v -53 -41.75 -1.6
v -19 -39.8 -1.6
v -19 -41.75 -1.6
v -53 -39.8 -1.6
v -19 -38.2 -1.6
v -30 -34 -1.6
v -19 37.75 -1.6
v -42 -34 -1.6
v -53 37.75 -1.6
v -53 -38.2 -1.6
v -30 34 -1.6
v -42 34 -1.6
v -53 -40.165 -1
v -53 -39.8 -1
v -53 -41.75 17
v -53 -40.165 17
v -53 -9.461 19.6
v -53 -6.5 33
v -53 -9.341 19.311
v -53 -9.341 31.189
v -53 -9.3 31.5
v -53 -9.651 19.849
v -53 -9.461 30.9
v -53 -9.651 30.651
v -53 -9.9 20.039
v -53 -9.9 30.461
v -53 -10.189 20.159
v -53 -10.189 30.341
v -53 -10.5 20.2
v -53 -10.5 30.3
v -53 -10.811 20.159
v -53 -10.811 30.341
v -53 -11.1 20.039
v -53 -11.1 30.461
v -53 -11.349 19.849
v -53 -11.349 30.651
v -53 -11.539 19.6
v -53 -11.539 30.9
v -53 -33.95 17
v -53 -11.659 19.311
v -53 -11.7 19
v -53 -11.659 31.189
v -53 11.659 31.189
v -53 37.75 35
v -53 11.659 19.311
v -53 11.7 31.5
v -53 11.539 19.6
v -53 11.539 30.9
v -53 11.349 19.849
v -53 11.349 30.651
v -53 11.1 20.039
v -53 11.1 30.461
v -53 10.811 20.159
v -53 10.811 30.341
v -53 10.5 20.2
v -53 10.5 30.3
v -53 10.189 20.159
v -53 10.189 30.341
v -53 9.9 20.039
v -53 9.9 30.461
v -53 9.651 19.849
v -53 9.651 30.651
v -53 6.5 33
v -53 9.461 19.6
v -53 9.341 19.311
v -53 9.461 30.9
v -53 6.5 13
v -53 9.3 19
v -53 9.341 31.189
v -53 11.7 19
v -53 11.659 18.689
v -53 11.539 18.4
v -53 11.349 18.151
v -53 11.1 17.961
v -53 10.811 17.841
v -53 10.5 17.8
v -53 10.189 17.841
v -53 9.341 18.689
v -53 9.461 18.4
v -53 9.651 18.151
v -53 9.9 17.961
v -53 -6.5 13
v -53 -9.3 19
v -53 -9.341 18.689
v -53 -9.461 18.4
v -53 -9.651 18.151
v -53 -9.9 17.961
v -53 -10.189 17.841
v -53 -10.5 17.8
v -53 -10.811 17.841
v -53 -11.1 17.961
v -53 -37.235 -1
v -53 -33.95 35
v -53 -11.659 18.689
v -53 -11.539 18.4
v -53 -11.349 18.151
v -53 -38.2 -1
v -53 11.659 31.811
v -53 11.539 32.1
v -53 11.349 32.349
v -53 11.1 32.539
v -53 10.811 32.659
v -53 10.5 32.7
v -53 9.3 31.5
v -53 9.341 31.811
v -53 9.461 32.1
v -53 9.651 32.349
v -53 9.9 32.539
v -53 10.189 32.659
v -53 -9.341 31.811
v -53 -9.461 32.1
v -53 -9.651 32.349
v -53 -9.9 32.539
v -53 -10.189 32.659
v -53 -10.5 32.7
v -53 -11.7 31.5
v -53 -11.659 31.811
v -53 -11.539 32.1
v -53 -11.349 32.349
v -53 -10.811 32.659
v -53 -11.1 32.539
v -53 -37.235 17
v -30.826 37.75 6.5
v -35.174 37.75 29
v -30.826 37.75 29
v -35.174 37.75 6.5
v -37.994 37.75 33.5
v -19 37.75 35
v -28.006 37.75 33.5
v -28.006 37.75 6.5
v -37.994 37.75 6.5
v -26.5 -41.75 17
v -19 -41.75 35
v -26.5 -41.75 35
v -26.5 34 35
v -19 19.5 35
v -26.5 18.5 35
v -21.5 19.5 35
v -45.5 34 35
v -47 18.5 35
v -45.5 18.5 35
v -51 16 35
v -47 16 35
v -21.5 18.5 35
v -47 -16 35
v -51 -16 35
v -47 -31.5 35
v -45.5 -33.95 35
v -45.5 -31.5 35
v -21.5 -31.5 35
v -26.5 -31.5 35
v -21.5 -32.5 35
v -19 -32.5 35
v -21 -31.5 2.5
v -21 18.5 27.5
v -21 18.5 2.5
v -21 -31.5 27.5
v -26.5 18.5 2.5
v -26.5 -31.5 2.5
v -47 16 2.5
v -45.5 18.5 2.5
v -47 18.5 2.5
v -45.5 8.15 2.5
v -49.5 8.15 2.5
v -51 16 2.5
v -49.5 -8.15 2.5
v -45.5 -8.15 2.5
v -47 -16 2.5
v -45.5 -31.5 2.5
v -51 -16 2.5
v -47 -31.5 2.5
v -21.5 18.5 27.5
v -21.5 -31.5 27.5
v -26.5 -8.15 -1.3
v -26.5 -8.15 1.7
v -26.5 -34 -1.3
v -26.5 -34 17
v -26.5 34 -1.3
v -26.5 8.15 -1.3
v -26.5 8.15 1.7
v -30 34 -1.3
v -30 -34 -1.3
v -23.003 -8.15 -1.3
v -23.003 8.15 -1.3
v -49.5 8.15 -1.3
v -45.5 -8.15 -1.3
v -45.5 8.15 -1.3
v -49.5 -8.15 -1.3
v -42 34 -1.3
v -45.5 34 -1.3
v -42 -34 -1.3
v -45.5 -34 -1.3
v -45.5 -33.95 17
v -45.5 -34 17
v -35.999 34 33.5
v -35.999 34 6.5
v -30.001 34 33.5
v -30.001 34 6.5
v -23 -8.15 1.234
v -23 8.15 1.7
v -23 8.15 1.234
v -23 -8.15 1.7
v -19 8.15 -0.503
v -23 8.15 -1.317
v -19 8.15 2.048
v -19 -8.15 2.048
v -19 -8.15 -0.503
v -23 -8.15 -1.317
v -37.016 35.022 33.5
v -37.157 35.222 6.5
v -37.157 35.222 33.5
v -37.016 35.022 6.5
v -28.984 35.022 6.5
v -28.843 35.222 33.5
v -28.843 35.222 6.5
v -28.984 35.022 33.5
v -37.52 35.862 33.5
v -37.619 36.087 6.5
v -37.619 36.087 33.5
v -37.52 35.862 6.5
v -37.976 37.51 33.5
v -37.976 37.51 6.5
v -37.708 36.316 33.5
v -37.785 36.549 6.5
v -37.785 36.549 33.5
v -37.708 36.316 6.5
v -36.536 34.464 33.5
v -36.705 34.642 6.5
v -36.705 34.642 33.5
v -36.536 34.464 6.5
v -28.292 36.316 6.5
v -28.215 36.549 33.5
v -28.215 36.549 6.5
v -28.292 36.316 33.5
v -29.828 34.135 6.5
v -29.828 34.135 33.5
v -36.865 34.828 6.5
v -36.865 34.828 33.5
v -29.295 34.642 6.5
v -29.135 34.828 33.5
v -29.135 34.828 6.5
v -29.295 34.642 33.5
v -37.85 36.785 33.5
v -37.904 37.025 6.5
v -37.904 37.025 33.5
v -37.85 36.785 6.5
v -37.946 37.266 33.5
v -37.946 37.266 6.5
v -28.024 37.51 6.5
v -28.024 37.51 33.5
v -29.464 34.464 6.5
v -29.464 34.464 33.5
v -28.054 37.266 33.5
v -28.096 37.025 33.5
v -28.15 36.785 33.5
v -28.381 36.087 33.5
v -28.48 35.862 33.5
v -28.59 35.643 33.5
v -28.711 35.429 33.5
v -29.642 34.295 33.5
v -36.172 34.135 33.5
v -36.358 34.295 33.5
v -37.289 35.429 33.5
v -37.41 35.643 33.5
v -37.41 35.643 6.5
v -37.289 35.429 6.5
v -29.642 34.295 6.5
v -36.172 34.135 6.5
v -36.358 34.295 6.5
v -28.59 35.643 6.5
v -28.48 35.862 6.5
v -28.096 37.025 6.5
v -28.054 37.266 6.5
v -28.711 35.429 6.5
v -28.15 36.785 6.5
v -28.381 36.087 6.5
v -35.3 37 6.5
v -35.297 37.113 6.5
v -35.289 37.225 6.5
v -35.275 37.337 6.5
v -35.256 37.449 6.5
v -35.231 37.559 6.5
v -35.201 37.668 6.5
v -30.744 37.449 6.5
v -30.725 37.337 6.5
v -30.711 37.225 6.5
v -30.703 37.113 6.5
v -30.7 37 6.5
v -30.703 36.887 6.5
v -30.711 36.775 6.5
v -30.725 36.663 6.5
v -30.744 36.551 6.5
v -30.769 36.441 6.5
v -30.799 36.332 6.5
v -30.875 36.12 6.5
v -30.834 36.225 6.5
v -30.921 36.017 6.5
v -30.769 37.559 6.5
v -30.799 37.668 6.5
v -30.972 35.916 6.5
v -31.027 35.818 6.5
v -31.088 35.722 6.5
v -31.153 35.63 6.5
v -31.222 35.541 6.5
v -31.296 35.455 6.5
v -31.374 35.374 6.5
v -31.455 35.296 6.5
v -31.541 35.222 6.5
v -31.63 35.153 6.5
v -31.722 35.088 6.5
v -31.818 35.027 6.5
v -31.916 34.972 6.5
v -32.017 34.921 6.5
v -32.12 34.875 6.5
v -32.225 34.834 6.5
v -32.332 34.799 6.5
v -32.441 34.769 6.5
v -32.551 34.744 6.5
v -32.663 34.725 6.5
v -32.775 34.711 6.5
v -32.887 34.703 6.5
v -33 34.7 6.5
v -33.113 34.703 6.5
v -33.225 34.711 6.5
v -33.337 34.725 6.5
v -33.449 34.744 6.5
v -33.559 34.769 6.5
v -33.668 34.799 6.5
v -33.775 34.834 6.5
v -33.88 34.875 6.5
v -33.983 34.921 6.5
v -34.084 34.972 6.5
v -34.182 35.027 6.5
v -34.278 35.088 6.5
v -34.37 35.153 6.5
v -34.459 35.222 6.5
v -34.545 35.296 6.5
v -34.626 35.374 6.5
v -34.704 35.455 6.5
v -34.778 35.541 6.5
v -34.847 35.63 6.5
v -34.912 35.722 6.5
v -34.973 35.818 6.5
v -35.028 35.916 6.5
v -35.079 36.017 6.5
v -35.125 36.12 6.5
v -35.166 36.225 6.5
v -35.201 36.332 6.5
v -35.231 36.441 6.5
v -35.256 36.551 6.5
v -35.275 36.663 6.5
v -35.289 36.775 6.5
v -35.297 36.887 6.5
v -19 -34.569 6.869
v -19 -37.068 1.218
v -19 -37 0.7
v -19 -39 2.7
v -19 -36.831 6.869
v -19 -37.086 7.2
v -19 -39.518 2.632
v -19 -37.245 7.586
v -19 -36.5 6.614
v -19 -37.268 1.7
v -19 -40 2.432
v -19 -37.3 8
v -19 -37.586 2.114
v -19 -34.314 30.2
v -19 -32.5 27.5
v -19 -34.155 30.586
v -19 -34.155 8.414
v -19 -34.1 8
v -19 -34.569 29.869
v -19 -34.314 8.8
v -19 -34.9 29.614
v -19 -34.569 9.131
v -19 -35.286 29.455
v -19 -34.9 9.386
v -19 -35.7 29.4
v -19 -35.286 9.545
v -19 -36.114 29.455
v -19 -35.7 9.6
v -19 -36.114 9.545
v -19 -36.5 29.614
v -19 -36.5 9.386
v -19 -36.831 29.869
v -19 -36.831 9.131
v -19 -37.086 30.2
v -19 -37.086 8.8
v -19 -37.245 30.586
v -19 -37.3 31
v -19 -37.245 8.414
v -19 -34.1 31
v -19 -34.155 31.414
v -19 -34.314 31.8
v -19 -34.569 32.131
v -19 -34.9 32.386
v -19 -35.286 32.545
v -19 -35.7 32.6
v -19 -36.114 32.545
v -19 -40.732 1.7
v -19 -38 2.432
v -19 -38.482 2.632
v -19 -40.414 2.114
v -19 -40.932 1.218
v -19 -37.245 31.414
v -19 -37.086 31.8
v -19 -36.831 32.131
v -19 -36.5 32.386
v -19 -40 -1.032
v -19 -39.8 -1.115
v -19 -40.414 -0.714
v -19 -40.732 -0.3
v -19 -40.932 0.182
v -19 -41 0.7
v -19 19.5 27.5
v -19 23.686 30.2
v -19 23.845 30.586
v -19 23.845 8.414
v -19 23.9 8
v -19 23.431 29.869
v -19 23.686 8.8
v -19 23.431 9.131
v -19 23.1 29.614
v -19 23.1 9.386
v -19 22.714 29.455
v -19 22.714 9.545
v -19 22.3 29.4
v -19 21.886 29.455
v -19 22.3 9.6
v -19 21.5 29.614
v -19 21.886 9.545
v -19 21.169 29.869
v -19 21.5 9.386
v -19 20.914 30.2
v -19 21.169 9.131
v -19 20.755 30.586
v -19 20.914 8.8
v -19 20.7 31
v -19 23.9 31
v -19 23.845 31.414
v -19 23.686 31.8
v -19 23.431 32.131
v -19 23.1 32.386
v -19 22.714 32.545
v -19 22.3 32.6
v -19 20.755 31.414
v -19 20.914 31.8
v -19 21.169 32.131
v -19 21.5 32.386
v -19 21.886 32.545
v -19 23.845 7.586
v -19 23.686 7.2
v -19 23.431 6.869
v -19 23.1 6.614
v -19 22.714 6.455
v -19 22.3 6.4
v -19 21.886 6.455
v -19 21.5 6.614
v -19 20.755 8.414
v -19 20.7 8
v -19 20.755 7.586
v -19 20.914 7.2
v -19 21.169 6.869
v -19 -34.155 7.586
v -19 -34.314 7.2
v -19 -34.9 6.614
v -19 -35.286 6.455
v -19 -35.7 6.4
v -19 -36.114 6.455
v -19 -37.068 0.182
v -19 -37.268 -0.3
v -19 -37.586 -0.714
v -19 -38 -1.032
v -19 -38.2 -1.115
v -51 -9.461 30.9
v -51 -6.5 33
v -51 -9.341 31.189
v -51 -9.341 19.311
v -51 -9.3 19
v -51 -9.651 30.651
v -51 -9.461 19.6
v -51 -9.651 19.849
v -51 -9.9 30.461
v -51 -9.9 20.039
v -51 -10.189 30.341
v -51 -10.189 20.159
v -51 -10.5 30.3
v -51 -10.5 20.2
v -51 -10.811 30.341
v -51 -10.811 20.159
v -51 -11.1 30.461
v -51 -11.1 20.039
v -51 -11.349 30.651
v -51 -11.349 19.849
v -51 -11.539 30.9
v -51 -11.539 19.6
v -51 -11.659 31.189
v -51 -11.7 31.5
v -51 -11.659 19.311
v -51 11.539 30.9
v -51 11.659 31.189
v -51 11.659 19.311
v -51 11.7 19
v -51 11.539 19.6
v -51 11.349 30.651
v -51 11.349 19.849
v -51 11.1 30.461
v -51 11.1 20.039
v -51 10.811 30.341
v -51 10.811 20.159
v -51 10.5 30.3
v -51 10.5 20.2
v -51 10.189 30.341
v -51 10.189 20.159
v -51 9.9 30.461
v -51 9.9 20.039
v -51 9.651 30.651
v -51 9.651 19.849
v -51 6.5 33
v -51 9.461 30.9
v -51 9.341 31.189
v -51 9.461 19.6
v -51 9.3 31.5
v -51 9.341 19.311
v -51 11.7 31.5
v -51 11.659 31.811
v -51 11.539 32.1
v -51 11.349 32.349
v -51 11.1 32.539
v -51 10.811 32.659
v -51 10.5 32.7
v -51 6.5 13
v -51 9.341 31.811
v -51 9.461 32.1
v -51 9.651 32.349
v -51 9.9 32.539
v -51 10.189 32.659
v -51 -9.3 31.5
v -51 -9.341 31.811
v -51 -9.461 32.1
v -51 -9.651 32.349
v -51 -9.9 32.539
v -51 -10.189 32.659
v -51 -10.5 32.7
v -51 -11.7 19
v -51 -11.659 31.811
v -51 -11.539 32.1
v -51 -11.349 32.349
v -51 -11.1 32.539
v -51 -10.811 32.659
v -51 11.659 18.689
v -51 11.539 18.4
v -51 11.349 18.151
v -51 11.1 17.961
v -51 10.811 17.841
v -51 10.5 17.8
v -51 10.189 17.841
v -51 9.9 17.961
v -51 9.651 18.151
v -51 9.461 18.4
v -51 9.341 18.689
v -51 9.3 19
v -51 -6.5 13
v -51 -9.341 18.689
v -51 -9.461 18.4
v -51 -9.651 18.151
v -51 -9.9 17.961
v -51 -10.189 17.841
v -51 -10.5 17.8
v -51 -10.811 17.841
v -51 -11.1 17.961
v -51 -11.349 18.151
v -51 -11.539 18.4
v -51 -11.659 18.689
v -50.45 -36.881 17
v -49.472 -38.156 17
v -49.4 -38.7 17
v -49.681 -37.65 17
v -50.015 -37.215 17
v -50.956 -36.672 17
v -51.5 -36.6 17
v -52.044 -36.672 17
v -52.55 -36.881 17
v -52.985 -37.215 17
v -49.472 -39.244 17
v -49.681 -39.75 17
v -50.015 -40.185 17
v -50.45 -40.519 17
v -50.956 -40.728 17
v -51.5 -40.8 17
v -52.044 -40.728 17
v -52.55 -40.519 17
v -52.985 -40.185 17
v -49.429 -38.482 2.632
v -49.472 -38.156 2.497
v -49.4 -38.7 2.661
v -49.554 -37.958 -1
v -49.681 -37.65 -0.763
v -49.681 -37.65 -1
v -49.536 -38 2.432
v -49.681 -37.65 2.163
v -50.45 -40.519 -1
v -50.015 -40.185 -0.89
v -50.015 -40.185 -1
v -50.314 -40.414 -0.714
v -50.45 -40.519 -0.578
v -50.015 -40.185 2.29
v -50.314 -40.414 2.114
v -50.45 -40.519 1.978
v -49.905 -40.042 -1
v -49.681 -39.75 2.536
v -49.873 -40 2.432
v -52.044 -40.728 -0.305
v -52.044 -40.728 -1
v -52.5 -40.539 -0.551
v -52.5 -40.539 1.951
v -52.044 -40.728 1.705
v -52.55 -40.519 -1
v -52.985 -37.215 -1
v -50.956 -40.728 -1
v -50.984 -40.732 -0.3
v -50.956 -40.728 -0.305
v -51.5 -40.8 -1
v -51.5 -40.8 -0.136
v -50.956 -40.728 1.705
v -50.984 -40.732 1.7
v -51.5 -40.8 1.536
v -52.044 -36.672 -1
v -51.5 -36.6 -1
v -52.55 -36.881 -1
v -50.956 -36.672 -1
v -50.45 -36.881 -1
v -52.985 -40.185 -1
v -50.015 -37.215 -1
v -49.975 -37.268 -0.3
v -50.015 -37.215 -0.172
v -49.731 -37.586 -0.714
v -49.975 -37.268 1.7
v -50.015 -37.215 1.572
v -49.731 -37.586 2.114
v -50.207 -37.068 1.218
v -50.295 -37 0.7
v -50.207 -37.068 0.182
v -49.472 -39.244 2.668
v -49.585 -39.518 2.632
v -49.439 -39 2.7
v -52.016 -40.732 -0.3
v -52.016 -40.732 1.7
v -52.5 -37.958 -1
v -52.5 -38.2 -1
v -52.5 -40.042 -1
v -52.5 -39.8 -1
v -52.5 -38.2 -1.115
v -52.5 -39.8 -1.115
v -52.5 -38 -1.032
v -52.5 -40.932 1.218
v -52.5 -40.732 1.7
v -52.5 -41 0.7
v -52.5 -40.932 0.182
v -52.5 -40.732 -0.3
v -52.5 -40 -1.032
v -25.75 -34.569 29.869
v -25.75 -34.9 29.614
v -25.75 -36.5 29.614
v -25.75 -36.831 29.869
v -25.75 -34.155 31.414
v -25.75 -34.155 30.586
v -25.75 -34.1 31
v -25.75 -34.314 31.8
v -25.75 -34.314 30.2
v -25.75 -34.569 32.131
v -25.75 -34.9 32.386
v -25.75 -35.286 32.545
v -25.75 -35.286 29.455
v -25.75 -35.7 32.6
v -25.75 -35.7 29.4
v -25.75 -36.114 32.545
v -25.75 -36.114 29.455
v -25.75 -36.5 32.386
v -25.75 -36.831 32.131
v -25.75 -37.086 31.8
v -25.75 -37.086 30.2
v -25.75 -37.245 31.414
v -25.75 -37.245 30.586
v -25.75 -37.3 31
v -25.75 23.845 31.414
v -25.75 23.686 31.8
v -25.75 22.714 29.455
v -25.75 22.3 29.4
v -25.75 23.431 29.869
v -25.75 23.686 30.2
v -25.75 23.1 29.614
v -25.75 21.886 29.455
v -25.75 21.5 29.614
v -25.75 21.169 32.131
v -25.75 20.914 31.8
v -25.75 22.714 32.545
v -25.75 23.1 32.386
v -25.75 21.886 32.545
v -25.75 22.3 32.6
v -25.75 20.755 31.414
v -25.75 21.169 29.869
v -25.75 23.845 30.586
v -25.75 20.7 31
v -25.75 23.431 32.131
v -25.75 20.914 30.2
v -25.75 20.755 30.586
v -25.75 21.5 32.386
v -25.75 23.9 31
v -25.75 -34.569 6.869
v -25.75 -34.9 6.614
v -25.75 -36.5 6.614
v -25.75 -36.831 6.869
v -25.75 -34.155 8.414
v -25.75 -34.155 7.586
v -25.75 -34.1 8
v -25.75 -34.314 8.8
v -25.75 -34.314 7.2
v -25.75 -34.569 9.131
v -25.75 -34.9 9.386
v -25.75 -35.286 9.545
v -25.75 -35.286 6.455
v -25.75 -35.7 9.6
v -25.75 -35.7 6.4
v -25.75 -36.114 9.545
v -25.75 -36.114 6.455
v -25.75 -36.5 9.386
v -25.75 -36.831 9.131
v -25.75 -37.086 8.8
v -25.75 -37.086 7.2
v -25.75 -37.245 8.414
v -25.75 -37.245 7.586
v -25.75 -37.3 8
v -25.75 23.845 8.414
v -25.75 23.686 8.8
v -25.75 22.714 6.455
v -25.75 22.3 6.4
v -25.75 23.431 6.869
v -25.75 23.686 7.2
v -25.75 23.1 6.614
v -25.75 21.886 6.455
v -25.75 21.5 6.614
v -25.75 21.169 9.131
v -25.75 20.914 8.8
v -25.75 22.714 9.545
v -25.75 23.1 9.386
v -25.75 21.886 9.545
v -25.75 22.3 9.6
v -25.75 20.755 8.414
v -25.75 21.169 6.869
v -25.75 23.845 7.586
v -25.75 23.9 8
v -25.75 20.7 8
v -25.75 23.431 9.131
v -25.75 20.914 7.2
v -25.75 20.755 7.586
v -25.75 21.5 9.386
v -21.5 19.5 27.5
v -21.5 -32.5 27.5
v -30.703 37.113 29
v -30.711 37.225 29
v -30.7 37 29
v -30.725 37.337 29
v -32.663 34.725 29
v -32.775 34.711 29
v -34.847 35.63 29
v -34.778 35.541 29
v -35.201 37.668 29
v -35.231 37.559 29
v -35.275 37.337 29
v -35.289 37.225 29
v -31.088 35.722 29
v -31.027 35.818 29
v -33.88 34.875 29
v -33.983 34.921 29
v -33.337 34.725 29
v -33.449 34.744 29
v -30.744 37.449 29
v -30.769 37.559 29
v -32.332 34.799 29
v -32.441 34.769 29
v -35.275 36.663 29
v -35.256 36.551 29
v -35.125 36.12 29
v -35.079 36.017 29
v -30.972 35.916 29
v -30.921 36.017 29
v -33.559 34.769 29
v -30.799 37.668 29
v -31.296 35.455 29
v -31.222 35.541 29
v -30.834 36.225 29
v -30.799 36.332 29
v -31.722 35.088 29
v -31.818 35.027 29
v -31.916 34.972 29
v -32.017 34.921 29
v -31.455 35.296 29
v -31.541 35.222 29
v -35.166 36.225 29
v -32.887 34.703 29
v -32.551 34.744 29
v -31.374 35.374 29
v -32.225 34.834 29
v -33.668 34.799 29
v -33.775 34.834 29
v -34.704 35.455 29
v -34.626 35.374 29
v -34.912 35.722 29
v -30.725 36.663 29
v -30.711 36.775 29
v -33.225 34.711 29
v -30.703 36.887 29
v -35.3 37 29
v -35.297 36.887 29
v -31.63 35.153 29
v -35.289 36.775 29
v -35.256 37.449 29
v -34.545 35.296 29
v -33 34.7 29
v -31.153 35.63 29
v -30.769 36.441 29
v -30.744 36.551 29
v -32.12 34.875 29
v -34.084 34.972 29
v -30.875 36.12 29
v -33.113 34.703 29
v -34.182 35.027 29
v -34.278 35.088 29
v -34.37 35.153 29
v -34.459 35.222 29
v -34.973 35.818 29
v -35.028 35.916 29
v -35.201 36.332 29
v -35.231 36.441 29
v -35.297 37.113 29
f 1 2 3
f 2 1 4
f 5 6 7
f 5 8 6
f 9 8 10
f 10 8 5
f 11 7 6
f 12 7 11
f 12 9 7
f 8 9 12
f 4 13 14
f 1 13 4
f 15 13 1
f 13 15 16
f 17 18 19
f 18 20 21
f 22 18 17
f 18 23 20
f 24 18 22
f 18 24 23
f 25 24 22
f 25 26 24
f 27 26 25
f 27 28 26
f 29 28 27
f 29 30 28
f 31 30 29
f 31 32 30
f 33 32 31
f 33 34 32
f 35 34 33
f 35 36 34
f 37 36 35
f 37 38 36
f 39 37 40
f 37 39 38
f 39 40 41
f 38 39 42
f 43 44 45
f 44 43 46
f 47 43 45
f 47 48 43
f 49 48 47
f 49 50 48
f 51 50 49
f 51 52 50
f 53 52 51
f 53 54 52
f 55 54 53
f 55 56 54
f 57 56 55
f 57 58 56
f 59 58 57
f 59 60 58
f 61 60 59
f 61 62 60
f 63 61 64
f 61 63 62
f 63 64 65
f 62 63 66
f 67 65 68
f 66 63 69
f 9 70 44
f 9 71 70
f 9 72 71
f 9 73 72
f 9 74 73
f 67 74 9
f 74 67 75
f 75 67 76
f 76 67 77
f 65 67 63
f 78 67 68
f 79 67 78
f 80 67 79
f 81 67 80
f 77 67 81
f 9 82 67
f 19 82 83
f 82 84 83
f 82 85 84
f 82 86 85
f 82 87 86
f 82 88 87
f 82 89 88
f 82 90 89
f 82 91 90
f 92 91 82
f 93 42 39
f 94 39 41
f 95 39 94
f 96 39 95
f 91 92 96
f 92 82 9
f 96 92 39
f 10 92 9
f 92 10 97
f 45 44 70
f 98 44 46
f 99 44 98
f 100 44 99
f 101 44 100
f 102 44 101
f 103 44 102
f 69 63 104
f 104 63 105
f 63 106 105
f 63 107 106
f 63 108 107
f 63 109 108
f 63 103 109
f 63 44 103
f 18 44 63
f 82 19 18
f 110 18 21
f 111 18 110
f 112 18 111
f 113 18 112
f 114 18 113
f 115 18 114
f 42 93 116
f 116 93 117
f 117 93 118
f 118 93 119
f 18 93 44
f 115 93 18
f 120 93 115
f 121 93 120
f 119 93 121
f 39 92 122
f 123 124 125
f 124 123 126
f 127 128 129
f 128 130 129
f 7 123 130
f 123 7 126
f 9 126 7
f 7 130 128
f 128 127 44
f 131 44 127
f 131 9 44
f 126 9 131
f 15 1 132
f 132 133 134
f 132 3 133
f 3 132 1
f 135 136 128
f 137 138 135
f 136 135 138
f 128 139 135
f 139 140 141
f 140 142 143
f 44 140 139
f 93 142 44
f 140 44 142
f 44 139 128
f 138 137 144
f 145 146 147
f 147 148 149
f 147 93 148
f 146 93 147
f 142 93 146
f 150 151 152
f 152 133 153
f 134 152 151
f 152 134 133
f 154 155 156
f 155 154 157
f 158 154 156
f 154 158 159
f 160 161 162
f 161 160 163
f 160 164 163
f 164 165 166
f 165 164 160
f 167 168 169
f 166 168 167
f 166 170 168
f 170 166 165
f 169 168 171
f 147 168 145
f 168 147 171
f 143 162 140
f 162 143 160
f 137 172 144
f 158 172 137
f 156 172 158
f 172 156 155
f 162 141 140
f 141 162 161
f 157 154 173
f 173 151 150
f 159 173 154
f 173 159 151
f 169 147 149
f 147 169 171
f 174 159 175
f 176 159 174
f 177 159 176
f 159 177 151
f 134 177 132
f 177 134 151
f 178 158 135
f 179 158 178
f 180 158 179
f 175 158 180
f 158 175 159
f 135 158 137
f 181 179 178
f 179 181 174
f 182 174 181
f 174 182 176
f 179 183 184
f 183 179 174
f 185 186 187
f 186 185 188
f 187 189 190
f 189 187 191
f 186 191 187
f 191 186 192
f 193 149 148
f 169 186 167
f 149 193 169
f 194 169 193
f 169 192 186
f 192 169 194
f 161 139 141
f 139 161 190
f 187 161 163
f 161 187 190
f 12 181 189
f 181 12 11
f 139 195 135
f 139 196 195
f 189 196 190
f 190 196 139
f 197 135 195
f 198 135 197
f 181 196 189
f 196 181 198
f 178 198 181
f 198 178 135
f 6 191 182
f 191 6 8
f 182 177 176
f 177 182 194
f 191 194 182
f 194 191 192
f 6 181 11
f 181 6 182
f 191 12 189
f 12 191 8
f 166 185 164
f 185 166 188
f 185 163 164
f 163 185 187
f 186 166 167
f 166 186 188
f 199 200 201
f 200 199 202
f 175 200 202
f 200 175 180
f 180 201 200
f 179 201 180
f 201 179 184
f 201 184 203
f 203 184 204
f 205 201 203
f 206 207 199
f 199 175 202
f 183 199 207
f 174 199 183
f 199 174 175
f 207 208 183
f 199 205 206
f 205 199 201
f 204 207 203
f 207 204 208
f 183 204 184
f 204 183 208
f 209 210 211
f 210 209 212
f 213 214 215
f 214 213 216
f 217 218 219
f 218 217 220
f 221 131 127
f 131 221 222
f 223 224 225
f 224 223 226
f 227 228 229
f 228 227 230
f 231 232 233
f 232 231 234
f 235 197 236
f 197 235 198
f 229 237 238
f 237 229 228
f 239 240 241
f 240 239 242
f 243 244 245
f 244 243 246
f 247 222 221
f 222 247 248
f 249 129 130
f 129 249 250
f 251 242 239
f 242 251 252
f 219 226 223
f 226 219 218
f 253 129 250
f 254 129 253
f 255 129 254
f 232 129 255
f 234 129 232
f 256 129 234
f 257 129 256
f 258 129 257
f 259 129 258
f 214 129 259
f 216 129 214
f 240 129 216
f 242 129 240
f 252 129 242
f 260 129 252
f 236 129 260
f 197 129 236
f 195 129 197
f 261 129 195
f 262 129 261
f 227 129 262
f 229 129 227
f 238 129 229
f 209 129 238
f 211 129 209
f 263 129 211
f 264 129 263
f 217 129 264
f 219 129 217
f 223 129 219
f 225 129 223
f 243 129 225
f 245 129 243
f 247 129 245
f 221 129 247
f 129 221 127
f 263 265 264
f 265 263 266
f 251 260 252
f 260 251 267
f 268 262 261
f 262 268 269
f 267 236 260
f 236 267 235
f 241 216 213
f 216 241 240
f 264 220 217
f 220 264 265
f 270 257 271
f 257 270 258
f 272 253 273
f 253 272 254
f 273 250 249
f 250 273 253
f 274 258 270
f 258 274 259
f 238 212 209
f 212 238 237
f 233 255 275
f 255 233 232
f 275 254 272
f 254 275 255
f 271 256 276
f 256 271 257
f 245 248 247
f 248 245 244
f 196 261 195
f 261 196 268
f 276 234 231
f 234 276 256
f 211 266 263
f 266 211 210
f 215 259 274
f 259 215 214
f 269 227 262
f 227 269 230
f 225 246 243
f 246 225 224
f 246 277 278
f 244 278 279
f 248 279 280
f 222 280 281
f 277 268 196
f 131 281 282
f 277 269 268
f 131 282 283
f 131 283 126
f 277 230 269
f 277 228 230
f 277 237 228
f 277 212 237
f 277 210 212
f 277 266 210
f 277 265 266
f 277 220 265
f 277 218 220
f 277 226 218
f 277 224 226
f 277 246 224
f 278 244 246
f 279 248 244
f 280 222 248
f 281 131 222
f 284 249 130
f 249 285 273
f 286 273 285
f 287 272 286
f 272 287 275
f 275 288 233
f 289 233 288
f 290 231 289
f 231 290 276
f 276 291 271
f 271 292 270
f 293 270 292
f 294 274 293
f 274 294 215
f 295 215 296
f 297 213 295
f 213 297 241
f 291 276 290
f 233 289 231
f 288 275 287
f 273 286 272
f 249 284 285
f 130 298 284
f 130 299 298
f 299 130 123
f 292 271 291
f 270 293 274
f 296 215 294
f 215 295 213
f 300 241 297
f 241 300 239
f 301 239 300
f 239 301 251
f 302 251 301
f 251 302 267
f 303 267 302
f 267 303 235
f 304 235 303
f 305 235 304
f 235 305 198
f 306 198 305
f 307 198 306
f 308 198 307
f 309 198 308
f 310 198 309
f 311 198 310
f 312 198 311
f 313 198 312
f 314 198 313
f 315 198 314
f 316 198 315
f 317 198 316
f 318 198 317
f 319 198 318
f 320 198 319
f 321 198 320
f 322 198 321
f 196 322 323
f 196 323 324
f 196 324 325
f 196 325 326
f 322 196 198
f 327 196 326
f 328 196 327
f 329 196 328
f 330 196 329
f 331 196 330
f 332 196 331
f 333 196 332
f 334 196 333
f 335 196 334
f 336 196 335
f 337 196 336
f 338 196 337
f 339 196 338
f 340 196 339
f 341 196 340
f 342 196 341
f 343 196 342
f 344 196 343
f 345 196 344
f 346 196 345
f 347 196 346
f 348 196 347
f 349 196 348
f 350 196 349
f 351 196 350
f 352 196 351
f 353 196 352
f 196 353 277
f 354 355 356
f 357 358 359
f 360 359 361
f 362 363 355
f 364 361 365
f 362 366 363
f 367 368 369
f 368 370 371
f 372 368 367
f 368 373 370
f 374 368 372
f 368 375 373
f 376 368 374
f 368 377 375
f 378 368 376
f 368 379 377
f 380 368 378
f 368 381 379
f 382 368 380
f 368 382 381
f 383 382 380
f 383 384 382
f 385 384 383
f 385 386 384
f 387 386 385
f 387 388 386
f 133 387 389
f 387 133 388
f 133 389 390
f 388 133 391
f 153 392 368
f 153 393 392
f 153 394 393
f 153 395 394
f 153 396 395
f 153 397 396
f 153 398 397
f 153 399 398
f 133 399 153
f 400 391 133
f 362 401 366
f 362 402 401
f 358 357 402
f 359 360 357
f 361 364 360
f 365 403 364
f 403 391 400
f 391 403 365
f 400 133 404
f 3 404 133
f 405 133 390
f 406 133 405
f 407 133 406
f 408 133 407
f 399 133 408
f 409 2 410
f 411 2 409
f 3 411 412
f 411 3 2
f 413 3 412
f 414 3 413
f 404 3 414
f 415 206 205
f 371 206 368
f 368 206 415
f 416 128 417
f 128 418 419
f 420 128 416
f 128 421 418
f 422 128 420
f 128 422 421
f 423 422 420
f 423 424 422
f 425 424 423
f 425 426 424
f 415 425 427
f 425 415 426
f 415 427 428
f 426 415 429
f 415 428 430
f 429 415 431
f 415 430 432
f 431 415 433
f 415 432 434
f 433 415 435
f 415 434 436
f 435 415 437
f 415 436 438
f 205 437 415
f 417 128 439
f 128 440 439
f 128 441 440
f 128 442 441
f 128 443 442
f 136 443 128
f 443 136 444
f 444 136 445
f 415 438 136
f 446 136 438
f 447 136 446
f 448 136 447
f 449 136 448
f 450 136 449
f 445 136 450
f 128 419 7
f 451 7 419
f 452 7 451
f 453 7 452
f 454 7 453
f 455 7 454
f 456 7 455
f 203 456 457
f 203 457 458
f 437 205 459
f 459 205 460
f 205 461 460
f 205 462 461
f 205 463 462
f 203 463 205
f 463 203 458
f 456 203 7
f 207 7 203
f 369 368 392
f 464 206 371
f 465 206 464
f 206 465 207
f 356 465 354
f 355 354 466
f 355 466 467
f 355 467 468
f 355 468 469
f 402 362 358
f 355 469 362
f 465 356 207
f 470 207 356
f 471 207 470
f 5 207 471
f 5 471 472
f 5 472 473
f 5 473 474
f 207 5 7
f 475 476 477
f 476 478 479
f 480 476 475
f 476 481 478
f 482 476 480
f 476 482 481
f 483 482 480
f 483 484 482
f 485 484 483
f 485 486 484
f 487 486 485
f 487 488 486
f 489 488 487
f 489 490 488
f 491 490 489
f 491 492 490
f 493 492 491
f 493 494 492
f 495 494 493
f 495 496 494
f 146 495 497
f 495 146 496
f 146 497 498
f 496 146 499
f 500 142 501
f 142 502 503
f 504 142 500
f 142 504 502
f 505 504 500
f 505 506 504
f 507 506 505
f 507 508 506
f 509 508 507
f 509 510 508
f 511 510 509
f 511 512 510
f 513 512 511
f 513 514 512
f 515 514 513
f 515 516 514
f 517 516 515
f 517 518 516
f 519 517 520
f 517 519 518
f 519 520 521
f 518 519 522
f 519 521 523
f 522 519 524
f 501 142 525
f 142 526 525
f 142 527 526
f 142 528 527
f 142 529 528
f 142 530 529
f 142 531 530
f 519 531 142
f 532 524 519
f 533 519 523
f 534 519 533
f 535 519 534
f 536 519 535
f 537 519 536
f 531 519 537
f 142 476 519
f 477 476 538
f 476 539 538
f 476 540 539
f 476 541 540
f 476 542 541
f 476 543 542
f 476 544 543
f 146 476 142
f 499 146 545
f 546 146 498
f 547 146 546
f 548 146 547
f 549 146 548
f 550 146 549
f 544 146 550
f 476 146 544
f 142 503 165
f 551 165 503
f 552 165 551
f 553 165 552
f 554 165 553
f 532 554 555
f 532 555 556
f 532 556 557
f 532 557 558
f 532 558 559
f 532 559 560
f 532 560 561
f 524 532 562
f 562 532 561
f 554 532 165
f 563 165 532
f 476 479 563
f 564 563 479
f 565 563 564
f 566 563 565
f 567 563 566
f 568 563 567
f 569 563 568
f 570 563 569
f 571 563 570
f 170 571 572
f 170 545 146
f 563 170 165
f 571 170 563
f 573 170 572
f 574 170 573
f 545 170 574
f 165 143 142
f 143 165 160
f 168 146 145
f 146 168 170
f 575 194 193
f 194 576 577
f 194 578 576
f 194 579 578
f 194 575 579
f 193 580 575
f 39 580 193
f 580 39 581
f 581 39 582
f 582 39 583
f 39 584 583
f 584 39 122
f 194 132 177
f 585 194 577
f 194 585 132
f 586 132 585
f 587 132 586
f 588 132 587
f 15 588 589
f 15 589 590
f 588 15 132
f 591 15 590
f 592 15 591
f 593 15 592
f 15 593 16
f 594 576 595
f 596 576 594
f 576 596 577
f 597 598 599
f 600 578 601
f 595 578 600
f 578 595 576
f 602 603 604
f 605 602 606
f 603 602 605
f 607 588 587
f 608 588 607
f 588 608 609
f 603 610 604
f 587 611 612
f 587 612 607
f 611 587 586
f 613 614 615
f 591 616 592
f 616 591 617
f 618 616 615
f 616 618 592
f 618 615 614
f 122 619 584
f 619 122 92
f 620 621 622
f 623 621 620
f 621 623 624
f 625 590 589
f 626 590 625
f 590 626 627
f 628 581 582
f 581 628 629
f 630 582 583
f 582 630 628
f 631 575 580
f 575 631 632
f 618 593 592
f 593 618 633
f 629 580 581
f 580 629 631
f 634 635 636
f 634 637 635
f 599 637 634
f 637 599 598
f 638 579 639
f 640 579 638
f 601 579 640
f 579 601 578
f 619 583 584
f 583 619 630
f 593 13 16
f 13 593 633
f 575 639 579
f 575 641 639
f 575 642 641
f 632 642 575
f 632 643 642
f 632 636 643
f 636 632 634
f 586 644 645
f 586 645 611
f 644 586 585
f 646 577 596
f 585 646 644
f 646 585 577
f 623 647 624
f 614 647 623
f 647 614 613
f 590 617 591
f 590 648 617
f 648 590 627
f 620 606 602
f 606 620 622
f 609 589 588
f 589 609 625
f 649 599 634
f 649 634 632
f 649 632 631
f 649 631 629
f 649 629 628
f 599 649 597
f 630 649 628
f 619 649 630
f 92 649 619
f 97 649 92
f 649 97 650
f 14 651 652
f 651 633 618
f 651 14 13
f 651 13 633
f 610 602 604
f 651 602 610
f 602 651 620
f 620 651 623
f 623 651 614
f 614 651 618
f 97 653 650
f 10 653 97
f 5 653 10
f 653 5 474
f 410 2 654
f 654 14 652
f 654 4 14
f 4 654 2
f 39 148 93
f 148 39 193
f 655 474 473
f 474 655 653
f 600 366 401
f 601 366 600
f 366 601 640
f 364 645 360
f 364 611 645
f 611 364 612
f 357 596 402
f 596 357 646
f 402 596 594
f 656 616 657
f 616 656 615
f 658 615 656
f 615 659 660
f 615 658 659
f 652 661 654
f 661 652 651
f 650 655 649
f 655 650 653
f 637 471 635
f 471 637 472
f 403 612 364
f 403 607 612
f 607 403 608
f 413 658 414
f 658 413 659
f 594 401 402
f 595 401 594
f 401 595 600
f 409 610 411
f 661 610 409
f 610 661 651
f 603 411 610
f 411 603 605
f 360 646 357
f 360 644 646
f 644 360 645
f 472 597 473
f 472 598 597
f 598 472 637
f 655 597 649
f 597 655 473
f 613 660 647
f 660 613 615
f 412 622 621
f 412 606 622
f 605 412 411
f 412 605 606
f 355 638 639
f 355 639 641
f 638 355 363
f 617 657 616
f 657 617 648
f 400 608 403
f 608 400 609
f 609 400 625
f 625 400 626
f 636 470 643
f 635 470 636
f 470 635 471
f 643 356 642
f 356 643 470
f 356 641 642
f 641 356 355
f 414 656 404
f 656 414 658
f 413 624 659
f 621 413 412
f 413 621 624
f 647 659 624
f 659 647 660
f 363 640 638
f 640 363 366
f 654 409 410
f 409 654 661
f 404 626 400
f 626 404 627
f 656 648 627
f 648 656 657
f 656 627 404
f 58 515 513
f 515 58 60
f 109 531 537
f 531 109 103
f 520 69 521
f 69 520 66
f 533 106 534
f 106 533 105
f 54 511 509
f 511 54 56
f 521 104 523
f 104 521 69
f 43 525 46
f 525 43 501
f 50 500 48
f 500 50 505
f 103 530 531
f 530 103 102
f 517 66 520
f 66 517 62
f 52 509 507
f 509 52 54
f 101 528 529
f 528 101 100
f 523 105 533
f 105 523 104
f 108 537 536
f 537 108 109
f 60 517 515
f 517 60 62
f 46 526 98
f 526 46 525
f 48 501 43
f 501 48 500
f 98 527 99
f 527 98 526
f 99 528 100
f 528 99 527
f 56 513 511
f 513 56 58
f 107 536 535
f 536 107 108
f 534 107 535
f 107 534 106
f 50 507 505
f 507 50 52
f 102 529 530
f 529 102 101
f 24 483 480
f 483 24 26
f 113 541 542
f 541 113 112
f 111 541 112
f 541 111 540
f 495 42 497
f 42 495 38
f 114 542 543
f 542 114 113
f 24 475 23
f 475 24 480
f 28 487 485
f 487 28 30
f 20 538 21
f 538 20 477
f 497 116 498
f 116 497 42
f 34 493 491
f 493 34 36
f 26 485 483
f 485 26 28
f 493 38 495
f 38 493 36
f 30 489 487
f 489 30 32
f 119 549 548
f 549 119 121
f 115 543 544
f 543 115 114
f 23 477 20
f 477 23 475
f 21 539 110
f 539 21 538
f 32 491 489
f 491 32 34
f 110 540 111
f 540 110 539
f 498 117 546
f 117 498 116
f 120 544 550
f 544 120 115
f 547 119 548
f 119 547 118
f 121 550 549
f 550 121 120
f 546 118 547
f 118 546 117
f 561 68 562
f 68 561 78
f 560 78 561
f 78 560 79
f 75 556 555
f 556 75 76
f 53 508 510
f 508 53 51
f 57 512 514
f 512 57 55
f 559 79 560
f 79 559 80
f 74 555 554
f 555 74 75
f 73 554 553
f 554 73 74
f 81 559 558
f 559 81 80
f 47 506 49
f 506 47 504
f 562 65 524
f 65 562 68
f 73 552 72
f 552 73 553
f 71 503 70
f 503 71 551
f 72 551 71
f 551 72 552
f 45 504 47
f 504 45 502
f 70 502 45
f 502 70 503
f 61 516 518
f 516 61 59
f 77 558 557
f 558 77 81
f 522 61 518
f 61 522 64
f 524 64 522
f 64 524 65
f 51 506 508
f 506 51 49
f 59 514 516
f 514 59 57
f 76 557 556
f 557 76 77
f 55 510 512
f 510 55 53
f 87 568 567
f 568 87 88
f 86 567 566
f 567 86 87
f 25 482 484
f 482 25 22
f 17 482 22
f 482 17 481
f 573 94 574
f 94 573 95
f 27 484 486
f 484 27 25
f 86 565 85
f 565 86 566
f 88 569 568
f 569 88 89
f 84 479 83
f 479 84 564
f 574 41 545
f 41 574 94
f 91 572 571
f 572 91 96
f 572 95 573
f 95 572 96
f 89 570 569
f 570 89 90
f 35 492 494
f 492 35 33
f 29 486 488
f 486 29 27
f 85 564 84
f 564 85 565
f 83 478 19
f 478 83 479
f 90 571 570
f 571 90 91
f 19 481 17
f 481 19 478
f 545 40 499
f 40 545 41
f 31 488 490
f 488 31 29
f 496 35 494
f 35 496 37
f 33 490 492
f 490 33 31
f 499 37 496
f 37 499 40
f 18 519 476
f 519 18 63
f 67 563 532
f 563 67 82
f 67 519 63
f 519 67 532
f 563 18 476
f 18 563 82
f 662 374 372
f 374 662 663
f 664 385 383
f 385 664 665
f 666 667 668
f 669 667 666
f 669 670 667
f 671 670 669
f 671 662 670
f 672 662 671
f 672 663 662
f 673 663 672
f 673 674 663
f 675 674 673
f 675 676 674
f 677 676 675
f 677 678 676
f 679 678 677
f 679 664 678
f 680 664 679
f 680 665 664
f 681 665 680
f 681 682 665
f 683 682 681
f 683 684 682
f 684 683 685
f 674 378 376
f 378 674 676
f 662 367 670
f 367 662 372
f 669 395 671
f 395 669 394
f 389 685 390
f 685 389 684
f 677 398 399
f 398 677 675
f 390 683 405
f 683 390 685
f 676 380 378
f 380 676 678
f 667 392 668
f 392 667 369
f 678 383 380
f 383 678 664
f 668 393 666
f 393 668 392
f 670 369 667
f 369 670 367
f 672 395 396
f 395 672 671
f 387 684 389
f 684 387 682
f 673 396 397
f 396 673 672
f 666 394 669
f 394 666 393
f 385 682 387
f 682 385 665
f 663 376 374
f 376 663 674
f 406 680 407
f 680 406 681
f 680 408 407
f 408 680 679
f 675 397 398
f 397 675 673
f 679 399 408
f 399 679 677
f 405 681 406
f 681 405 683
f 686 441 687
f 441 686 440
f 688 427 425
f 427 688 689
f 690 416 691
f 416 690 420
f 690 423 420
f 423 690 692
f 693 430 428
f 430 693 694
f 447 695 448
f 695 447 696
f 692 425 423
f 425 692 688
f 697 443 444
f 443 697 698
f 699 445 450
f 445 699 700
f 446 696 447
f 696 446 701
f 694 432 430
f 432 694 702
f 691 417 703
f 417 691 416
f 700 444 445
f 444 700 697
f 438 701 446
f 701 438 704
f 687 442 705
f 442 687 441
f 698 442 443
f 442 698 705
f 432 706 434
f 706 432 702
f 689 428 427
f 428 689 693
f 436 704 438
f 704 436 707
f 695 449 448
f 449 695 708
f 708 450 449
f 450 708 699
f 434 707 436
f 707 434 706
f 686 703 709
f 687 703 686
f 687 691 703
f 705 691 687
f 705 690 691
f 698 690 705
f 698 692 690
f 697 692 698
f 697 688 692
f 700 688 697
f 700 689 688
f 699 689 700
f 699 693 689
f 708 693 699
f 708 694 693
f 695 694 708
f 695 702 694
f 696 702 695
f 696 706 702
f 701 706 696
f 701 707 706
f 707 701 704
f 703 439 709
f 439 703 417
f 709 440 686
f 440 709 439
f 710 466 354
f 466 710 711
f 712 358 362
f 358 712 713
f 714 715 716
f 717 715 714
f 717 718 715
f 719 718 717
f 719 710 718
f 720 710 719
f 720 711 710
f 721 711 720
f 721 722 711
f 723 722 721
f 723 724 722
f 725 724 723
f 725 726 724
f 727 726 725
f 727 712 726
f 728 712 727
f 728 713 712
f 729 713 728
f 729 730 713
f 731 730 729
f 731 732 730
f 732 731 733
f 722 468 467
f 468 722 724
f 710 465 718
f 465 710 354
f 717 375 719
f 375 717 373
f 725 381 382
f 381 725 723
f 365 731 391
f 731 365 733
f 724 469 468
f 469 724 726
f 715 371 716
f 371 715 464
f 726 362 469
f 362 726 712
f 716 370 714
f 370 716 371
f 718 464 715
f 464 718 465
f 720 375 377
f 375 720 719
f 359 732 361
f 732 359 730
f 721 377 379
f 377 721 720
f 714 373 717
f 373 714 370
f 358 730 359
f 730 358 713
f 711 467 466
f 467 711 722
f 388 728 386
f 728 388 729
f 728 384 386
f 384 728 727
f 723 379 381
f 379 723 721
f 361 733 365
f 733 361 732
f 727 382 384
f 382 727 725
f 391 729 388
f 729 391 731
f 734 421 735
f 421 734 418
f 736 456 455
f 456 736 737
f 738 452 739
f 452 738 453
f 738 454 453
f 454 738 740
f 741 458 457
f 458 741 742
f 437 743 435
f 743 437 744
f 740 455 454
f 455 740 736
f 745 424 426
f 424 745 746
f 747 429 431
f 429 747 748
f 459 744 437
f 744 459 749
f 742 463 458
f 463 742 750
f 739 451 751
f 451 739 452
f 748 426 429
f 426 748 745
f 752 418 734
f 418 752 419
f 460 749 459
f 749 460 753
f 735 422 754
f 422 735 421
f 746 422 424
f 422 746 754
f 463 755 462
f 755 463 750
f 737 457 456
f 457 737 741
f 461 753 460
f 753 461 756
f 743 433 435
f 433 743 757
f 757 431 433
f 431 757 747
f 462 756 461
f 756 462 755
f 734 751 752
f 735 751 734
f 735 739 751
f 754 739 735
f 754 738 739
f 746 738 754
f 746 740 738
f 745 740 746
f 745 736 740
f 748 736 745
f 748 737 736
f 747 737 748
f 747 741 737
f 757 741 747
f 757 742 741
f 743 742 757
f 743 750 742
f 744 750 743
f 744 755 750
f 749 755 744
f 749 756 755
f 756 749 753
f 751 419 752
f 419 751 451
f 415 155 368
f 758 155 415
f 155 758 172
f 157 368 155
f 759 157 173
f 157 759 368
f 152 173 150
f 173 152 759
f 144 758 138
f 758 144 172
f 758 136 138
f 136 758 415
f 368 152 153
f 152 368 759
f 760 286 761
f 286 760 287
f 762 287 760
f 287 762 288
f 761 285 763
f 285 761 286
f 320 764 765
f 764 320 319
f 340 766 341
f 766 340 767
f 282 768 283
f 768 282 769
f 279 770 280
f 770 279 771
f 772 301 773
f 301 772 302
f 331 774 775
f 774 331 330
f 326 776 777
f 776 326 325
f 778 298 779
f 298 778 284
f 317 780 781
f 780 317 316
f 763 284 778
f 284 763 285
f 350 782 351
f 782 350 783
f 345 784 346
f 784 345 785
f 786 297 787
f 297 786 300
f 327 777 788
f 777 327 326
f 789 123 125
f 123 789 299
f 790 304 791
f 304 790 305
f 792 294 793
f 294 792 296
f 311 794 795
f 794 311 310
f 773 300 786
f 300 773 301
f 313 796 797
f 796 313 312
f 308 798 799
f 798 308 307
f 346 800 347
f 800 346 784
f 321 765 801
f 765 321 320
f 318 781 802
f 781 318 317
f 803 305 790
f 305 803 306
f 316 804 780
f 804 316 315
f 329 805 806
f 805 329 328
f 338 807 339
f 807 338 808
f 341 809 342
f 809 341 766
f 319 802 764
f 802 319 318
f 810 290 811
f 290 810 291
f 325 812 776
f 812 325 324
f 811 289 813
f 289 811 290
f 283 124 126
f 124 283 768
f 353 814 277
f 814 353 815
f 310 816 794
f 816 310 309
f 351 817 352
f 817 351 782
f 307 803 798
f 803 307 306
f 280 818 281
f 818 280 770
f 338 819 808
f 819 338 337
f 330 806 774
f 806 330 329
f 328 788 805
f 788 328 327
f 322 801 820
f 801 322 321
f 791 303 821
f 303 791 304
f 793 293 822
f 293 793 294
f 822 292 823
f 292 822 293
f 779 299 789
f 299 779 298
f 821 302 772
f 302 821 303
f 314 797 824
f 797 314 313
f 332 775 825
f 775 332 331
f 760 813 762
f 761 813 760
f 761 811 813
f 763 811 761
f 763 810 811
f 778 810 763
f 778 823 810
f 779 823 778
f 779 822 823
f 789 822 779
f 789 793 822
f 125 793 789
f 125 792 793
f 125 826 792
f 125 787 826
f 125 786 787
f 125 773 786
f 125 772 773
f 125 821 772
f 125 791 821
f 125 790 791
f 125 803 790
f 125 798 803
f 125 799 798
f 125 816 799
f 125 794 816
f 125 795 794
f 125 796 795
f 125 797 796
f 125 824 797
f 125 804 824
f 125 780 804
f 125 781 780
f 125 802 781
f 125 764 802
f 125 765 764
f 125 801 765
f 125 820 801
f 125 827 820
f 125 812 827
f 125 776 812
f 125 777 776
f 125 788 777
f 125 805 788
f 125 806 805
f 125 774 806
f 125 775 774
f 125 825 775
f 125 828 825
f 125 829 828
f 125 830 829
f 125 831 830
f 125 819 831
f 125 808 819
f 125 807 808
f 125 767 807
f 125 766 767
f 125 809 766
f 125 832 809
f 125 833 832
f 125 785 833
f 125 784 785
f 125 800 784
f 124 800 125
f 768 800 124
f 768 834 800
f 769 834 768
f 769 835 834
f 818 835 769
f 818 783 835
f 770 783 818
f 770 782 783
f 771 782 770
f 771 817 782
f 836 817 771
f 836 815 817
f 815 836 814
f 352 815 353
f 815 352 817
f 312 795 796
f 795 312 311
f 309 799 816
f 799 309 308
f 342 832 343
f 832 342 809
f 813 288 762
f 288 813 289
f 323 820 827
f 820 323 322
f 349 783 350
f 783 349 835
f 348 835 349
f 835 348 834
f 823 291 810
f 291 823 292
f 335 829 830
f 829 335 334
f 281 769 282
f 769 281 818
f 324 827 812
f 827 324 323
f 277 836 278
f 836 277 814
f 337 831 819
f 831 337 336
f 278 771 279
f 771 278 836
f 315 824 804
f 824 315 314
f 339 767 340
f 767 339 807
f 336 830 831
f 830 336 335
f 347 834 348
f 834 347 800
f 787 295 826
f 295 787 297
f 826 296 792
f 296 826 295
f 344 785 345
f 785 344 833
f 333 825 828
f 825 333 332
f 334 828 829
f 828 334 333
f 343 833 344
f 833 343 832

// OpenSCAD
union () {
difference(){
union(){
translate([-4,-2,1.9])cube([98,79.5,7], center=true);    
translate([-13,-2,19.5])cube([80,79.5,31], center=true); 
translate([-23.5,-6.5,19.5])cube([8,69,31], center=true);
}
    //Cube LiPo Battery Core Electronics style
    translate([-34,-6.5,20])cube([26,50,35], center=true);

    //Dual cylinder lipo Adafruit style
    translate([-36,0,17.2])cube([19,68,37], center=true);
    translate([-36,0,16])cube([12,68,37], center=true);
     
    //Outside rail mounts
    translate([0,50.8,-3.7])  rotate([0,90,0])   cylinder(h=115, r1=9, r2=9, center=true,$fn=128);
    translate([0,-50.8,-3.7])  rotate([0,90,0])   cylinder(h=115, r1=9, r2=9, center=true,$fn=128);

    //Hole clearance
    //translate([0,29.5,-17])  rotate([0,90,0])   cylinder(h=115, r1=17, r2=17, center=true,$fn=128);
    //translate([0,-29.5,-17])  rotate([0,90,0])   cylinder(h=115, r1=17, r2=17, center=true,$fn=128);
    
    //Cavity for camera cable
    translate([-38,0,1])cube([23,16.3,4.6], center=true);
    translate([-33,0,0.2])cube([20,16.3,3], center=true);
    translate([-11,0,2.4]) rotate([0,-11.5,0]) cube([25,16.3,2.5], center=true);

    //Camera cable routing
    translate([-33,38,20])  rotate([0,0,0])   cylinder(27, r1=5, r2=5, center=true,$fn=128);
    
    //Holes for battery terminals and solar plug
    translate([30,-30,16])cube([98,40.5,40], center=true);
    translate([30,30,16])cube([98,40.5,40], center=true);
    
    //Camera installation
    translate([-41,0,20])cube([20,32,35], center=true);
    
     //battery cable routing
    translate([-34,-37,27])  cube([15,10,20], center=true);
    translate([-51.5,-38.7,9]) rotate([0,0,0])  cylinder(h=20, r1=2.1, r2=2.1, center=true,$fn=24);
    
    translate([-36,-39,0])  cube([35,1.6,4], center=true);


    //translate([-46.5,-37.5,20.7])rotate([0,90,0])   cylinder(h=12.05, r1=3.75, r2=3.75, center=true,$fn=24);
    translate([-46,-39.5,29])  cube([20,11.1,24], center=true);
   
    translate([-35,-39,0.7])rotate([0,90,0])   cylinder(h=35, r1=2, r2=2, center=true,$fn=24);

    
    ///camera holes
    translate([-51,10.5,31.5])rotate([0,90,0])   cylinder(h=5, r1=1.2, r2=1.2, center=true,$fn=24);
    translate([-51,-10.5,31.5])rotate([0,90,0])   cylinder(h=5, r1=1.2, r2=1.2, center=true,$fn=24);
    translate([-51,10.5,19])rotate([0,90,0])   cylinder(h=5, r1=1.2, r2=1.2, center=true,$fn=24);
    translate([-51,-10.5,19])rotate([0,90,0])   cylinder(h=5, r1=1.2, r2=1.2, center=true,$fn=24);

    //camera cutout
    translate([-52,0,23])cube([8,13,20], center=true);
    
     //Pi Zero holes  
    translate([-17,-35.7,31])rotate([0,90,0])   cylinder(h=17.5, r1=1.6, r2=1.6, center=true,$fn=24);
    translate([-17,22.3,31])rotate([0,90,0])   cylinder(h=17.5, r1=1.6, r2=1.6, center=true,$fn=24);
    translate([-17,-35.7,8])rotate([0,90,0])   cylinder(h=17.5, r1=1.6, r2=1.6, center=true,$fn=24);
    translate([-17,22.3,8])rotate([0,90,0])   cylinder(h=17.5, r1=1.6, r2=1.6, center=true,$fn=24);
    
    
    //Pi 4 cutout 85.6mm × 56.5mm
    //translate([52,0.8,25])cube([58,87,30], center=true);
    //Pi Zero cut out 65mm x 30mm
    //translate([6,-9,22])cube([42,120,33], center=true);
    
    //Pi PCB cutout
    translate([16,-6.5,20])cube([70,70.5,46], center=true);
    translate([7,-6.5,35])cube([57,52,15], center=true);

    //Ventilation
    
    //#translate([-44,0,20])rotate([90,0,0])   cylinder(h=60, r1=2, r2=2, center=true,$fn=24);
    //translate([-30,0,20])rotate([90,0,0])   cylinder(h=88, r1=2, r2=2, center=true,$fn=24);    
    //translate([-44,-6.5,10])rotate([90,0,0])   cylinder(h=88, r1=2, r2=2, center=true,$fn=24);
    //translate([-30,0,10])rotate([90,0,0])   cylinder(h=88, r1=2, r2=2, center=true,$fn=24);    
    //#translate([-44,0,30])rotate([90,0,0])   cylinder(h=60, r1=2, r2=2, center=true,$fn=24);
    //translate([-30,0,30])rotate([90,0,0])   cylinder(h=88, r1=2, r2=2, center=true,$fn=24);    

}
//Camera cable routing
difference() {
    
    
    translate([-33,37,14])  rotate([0,0,0])   cylinder(30, r1=2.3, r2=2.3, center=true,$fn=128);
#    translate([-36.8,45.9,20])  cube([50,16.3,50], center=true);
        }
    }
